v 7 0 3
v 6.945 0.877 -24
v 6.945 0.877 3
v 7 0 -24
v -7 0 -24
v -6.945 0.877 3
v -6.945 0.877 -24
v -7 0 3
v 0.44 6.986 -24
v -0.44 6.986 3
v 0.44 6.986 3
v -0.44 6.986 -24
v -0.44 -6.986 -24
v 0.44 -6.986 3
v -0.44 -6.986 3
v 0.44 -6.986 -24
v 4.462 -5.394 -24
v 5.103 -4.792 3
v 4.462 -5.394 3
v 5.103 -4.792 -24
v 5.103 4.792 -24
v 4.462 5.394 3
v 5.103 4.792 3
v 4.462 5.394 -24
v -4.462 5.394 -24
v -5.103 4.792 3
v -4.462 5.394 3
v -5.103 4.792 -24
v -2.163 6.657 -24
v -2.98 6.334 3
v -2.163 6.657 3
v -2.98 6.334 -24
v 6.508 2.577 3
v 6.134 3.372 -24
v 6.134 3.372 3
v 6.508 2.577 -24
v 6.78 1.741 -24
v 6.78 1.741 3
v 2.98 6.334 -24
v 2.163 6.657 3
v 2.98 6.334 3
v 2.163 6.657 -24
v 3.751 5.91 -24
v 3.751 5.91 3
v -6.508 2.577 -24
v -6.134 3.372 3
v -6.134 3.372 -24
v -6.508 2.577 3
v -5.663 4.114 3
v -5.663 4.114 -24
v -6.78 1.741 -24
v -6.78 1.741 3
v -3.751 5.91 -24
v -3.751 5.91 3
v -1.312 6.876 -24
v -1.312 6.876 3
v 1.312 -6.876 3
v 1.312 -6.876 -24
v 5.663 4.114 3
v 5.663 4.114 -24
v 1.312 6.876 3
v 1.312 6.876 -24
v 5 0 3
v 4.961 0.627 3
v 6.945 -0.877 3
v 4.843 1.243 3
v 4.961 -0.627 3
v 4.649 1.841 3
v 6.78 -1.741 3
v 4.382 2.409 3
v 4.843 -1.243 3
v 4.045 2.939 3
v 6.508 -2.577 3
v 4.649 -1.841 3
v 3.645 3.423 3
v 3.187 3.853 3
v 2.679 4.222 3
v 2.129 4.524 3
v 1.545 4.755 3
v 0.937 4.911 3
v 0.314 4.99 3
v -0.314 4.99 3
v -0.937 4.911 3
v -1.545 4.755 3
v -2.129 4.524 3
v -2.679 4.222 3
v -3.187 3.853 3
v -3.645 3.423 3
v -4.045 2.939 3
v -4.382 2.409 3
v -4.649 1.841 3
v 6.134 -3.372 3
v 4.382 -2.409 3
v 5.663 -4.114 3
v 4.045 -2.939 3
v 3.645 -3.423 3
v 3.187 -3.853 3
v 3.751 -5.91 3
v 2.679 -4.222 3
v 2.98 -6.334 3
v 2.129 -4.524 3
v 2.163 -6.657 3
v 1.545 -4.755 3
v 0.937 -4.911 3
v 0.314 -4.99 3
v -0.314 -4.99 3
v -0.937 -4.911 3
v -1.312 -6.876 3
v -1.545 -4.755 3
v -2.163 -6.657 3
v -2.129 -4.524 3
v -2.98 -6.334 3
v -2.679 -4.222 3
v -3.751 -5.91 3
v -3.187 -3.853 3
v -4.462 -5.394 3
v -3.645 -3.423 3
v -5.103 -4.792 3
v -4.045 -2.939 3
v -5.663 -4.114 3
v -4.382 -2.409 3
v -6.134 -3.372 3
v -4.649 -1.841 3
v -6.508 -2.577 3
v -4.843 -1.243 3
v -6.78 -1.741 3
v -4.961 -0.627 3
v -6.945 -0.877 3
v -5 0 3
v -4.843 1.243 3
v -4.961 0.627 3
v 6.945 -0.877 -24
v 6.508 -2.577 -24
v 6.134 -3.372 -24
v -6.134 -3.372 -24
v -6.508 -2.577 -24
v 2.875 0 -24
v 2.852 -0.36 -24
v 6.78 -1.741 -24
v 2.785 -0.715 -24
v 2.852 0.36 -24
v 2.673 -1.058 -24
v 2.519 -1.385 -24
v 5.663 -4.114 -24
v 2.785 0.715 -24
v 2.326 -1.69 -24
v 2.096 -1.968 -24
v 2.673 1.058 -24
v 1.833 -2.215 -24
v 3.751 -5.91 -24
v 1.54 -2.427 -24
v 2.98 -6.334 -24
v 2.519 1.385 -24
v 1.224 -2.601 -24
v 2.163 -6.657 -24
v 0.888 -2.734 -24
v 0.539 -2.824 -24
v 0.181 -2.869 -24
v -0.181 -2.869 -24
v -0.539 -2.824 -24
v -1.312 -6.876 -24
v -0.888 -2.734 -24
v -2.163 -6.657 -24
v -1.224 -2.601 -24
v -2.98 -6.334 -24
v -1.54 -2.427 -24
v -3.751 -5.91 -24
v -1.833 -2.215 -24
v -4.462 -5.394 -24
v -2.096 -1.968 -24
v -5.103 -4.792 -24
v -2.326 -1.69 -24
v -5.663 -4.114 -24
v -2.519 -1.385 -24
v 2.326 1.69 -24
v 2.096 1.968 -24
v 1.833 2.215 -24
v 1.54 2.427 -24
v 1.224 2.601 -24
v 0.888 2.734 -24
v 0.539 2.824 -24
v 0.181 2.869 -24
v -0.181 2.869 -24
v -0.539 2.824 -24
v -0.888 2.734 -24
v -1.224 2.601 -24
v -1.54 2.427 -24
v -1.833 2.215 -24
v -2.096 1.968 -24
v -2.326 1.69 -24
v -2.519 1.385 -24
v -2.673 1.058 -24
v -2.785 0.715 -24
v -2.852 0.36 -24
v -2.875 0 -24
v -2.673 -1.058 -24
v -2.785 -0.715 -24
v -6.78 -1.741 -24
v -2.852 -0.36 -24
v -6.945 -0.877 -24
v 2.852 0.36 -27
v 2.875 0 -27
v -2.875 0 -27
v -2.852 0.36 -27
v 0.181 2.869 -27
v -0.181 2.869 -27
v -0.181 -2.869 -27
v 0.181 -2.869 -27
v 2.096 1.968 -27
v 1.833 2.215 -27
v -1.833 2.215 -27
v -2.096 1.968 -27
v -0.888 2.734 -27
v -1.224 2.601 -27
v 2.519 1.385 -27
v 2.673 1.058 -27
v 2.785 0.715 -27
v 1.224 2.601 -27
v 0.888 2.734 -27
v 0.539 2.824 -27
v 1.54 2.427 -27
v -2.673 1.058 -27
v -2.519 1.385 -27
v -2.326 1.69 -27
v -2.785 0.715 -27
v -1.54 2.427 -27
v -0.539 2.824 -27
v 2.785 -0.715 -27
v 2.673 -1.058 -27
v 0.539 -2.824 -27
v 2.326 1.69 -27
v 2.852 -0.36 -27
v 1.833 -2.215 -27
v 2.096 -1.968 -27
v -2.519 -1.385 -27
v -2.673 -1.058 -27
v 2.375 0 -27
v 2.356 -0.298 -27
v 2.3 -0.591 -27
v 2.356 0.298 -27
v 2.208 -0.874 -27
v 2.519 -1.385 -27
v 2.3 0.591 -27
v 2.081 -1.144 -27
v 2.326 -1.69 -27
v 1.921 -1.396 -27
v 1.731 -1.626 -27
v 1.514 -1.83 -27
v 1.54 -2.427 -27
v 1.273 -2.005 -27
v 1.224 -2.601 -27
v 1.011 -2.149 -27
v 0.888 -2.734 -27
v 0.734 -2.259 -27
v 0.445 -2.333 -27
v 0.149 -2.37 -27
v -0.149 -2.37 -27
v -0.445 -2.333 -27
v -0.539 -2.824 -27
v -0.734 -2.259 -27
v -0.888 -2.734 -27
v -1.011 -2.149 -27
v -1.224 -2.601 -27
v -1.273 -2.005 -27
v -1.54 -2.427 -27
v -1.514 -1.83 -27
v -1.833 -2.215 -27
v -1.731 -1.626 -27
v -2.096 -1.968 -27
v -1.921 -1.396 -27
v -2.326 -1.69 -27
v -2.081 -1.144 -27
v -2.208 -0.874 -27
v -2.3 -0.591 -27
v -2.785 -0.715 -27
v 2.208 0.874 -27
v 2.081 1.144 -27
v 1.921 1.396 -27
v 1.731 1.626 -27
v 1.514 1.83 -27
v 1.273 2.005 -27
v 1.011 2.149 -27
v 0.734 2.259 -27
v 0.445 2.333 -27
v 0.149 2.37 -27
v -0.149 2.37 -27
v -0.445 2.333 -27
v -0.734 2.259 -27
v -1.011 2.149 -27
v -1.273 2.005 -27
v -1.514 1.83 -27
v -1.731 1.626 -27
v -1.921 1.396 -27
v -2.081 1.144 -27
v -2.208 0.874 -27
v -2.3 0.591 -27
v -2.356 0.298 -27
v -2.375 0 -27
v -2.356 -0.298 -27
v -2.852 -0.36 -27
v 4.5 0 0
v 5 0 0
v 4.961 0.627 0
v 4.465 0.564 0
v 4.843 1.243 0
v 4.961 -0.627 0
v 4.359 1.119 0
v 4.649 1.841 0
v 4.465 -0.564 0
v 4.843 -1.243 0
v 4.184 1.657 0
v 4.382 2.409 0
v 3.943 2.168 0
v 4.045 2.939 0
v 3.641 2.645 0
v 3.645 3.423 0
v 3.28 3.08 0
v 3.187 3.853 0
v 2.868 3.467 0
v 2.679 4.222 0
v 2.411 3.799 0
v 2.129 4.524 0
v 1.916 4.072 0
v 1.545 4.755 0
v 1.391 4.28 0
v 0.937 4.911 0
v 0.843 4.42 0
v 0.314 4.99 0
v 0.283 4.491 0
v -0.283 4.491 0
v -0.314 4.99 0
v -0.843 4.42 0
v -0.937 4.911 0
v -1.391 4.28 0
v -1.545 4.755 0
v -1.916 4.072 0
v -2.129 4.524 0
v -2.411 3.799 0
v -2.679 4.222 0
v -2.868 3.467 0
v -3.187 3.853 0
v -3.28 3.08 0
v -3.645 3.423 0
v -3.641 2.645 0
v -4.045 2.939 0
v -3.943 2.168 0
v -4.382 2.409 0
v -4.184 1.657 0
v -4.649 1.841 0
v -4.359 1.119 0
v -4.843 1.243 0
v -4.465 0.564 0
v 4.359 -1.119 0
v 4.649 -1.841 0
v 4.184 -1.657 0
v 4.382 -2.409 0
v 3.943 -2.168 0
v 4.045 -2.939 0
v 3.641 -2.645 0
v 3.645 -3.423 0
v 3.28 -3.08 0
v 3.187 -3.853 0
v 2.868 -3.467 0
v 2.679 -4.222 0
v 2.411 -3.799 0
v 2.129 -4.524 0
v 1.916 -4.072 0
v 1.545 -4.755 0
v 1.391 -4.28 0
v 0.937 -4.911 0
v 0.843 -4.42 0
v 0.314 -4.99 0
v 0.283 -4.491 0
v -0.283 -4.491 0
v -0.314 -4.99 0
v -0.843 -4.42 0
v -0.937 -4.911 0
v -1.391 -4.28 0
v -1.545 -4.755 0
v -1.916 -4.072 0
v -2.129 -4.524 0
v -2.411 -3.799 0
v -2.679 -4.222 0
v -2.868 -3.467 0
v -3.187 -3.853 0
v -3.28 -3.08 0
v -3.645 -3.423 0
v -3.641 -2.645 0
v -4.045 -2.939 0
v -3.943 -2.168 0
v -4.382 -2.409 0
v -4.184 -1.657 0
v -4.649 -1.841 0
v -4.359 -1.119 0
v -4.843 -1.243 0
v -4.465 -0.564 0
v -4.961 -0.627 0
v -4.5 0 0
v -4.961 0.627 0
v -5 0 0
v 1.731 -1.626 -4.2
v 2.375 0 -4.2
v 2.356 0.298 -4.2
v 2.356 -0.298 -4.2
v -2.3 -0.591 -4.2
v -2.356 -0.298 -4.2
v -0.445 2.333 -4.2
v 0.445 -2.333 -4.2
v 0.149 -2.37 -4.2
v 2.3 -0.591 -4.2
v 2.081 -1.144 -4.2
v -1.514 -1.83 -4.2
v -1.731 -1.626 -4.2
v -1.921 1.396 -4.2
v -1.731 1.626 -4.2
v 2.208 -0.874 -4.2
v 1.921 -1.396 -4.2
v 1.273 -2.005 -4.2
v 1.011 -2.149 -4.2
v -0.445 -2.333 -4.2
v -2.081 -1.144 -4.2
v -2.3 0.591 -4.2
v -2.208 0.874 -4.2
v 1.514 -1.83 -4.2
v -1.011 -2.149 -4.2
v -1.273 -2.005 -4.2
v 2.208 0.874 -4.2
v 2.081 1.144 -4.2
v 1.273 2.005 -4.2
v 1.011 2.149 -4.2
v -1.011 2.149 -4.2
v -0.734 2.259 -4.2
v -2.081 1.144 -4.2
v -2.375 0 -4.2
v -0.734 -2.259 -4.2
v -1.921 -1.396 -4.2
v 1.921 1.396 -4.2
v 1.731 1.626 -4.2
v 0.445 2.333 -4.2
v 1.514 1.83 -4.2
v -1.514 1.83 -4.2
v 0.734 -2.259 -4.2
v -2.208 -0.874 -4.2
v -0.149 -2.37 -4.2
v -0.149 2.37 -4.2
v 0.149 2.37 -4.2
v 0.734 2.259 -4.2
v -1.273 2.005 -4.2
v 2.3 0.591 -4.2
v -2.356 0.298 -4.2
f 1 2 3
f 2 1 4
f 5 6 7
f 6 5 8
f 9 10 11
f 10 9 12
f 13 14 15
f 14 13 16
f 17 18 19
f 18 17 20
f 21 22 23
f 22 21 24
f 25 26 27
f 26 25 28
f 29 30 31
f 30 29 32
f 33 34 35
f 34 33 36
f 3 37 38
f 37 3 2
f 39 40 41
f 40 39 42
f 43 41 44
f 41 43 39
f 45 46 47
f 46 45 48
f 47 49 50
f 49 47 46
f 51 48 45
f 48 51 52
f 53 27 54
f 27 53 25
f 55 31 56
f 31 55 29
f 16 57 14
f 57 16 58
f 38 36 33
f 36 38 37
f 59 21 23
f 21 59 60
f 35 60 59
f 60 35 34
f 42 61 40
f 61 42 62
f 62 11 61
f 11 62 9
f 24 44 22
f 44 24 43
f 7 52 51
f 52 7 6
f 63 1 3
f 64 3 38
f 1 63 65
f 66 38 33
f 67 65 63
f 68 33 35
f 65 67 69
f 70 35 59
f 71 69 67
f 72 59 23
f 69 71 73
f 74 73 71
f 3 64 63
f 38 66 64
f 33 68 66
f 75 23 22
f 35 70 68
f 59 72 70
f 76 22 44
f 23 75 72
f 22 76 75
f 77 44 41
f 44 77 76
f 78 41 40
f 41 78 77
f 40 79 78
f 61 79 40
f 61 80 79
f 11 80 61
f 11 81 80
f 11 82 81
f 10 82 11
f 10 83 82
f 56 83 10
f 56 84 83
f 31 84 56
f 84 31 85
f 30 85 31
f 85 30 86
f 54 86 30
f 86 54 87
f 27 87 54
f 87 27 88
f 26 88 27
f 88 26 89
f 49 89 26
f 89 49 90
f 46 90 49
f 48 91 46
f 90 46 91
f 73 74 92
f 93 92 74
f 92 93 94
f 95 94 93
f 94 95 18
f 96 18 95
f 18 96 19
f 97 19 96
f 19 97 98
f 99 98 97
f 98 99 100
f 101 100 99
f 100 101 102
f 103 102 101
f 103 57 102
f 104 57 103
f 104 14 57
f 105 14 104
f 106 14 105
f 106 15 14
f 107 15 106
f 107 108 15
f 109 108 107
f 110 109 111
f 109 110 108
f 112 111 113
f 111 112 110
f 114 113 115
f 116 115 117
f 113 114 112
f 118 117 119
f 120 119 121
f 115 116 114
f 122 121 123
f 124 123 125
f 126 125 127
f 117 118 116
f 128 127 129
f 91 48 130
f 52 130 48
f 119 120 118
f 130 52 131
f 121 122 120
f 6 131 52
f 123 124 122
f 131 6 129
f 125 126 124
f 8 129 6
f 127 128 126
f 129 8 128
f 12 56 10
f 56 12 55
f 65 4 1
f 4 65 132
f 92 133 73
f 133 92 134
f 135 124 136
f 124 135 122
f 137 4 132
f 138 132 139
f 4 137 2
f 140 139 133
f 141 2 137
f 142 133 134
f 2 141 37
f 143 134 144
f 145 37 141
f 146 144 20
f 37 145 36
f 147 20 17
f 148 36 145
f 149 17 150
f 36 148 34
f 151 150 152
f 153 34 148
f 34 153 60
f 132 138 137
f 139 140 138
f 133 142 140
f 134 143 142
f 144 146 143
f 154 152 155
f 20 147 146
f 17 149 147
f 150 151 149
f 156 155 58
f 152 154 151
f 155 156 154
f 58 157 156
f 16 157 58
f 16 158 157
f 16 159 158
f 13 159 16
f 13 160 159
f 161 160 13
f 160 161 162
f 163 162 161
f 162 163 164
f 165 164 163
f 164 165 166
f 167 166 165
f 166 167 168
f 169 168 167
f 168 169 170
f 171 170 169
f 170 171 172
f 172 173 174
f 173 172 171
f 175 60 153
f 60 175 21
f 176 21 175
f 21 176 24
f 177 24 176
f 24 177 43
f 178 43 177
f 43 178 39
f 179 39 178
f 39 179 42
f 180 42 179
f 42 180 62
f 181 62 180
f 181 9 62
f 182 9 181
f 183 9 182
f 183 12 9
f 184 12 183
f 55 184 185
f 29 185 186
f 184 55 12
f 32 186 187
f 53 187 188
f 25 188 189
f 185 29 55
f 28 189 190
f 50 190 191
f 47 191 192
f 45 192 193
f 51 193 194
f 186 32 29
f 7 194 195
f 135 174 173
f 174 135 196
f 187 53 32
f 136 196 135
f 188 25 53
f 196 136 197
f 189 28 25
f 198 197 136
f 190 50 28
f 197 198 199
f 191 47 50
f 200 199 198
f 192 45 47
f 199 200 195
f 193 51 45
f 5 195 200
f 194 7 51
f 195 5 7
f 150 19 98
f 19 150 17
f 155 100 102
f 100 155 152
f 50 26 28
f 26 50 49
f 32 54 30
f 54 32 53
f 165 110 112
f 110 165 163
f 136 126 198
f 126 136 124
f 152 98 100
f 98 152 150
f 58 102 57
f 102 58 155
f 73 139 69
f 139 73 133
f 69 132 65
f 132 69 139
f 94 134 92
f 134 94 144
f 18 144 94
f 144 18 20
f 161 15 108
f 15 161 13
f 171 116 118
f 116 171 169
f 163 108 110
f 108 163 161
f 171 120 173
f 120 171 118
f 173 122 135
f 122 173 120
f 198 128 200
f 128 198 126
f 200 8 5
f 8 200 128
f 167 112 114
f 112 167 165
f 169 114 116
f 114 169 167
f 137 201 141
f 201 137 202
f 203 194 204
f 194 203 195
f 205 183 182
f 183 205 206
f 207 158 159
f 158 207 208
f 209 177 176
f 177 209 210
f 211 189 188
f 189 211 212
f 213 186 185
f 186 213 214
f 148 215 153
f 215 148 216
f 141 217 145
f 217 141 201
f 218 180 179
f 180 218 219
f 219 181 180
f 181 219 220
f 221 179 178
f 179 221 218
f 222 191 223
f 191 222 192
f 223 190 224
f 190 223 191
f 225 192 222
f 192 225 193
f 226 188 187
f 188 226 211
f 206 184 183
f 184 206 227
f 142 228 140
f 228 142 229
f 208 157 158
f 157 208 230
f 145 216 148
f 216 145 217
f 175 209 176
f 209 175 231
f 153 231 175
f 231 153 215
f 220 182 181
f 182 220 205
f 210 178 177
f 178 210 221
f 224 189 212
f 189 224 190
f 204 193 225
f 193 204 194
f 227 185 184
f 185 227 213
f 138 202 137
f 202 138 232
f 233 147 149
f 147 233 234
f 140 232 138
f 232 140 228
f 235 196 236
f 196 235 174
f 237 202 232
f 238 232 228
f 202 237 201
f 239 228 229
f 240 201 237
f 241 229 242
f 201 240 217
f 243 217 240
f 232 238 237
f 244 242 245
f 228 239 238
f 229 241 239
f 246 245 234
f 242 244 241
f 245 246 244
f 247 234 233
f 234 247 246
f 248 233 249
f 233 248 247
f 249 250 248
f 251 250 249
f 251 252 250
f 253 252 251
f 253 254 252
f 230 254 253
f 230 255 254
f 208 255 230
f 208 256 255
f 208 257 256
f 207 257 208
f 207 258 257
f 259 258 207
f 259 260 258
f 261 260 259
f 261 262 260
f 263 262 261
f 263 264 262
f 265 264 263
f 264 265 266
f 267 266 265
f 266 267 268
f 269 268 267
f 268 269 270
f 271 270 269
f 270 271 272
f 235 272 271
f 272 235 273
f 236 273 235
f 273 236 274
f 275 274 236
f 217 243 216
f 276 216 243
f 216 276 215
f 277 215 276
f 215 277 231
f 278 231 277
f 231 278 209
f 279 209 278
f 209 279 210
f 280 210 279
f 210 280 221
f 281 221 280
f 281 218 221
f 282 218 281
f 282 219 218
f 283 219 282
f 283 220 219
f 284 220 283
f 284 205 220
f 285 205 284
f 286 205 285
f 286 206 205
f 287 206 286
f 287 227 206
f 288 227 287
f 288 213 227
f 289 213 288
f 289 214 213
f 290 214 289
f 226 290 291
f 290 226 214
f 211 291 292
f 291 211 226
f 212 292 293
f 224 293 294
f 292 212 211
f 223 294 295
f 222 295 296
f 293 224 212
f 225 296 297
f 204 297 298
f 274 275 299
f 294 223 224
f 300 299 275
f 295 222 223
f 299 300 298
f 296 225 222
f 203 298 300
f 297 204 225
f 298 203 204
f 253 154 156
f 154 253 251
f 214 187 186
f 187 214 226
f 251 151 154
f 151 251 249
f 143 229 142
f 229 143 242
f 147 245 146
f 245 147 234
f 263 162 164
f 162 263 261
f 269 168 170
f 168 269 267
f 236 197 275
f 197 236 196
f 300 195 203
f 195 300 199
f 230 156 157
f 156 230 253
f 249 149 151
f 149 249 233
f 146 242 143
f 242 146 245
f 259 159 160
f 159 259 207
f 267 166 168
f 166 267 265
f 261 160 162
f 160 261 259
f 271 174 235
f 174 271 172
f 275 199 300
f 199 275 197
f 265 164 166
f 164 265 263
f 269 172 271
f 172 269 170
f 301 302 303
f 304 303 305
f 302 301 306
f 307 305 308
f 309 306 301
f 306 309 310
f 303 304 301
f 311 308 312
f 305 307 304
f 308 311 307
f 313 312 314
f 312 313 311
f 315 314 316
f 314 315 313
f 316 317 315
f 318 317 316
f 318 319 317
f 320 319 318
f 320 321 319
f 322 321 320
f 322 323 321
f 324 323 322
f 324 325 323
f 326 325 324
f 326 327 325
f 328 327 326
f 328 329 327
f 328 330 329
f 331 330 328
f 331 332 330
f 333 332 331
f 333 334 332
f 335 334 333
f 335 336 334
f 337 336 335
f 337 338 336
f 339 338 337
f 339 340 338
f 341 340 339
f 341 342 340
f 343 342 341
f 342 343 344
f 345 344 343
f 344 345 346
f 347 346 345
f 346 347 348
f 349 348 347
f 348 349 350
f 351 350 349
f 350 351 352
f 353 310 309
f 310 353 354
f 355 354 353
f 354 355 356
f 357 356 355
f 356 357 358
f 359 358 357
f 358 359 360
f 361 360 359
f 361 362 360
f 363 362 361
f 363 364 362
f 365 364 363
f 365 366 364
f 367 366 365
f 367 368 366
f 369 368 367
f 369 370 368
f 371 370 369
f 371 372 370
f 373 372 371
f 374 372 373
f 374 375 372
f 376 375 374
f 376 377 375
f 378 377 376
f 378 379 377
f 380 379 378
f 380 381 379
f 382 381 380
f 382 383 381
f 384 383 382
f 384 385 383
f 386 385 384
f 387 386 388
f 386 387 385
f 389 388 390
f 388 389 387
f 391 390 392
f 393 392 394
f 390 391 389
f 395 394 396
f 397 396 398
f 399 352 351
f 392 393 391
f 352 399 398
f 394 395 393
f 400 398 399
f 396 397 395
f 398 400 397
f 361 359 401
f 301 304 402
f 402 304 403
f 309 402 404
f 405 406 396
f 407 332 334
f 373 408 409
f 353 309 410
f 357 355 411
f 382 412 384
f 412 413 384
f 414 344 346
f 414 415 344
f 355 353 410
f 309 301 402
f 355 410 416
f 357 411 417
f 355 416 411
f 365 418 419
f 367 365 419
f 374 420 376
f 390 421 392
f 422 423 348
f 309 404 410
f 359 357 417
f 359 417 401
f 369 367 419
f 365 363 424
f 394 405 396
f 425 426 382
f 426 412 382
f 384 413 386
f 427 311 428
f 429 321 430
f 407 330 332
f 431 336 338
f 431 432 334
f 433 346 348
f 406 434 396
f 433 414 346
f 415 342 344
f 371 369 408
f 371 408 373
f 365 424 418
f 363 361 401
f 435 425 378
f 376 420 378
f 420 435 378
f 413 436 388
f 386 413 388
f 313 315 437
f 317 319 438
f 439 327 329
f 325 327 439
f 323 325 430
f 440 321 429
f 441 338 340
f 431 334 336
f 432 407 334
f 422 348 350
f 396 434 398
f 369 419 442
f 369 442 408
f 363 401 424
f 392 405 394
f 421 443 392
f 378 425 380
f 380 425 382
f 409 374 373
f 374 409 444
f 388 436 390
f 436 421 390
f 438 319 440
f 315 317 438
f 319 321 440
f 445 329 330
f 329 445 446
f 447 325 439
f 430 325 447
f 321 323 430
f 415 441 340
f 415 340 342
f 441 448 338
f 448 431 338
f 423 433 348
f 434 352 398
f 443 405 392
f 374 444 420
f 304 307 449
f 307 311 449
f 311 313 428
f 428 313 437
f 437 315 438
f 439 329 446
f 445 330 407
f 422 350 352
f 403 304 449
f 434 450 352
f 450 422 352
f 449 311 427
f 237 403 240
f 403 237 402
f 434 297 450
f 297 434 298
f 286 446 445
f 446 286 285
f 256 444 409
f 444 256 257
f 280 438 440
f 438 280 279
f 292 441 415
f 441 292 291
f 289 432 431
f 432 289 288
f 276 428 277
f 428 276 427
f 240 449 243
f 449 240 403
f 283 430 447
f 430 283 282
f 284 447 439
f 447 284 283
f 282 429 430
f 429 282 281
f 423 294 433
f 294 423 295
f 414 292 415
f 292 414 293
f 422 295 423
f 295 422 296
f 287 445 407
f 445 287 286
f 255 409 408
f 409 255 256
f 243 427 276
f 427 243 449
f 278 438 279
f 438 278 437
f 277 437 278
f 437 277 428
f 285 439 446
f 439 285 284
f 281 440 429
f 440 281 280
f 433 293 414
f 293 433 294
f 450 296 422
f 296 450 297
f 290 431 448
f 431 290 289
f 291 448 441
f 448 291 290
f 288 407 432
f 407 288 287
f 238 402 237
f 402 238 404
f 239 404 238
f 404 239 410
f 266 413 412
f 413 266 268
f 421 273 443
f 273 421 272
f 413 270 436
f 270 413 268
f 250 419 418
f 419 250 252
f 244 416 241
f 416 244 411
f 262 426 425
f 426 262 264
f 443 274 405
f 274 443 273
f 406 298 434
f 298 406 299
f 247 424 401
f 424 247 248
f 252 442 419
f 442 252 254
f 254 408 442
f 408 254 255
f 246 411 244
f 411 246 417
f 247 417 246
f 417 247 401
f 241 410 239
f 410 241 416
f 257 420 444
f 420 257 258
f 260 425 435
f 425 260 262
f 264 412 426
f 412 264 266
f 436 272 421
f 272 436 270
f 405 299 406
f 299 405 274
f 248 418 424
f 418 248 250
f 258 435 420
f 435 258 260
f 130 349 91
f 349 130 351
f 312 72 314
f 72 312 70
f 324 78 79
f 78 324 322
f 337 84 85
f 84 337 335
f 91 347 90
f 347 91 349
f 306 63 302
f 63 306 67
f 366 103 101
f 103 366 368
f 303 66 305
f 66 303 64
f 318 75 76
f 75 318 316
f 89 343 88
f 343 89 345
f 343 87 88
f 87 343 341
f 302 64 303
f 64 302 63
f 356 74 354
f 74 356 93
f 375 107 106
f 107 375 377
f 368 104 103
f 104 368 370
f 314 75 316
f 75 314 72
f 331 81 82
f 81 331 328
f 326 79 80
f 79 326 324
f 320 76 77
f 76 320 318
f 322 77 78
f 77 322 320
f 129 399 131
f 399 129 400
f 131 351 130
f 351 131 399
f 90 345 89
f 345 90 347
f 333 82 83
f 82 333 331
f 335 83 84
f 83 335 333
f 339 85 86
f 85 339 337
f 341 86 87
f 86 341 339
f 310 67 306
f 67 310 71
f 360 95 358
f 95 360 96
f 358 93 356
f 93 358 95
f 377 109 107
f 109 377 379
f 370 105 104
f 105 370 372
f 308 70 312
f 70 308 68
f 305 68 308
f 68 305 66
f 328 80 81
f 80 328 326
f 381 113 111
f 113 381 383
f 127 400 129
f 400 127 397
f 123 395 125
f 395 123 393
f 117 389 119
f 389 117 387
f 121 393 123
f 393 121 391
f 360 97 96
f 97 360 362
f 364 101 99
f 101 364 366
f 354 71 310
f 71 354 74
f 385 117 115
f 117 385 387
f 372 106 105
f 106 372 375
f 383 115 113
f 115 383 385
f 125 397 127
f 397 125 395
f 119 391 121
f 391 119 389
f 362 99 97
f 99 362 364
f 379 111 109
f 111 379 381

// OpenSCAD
$fn = 50;


difference() {
	union() {
		translate(v = [0, 0, -24.0000000000]) {
			cylinder(h = 27, r = 7.0000000000);
		}
		#translate(v = [0, 0, -27.0000000000]) {
			cylinder(h = 27, r = 2.8750000000);
		}
	}
	union() {
		translate(v = [0, 0, 0]) {
			rotate(a = [0, 0, 0]) {
				difference() {
					union() {
						translate(v = [0, 0, -27.0000000000]) {
							cylinder(h = 27, r = 2.2500000000);
						}
						translate(v = [0, 0, -4.2000000000]) {
							cylinder(h = 4.2000000000, r1 = 2.3750000000, r2 = 4.5000000000);
						}
						translate(v = [0, 0, -27.0000000000]) {
							cylinder(h = 27, r = 2.3750000000);
						}
						translate(v = [0, 0, -27.0000000000]) {
							cylinder(h = 27, r = 2.2500000000);
						}
					}
					union();
				}
			}
		}
		#cylinder(h = 3, r = 5.0000000000);
	}
}
